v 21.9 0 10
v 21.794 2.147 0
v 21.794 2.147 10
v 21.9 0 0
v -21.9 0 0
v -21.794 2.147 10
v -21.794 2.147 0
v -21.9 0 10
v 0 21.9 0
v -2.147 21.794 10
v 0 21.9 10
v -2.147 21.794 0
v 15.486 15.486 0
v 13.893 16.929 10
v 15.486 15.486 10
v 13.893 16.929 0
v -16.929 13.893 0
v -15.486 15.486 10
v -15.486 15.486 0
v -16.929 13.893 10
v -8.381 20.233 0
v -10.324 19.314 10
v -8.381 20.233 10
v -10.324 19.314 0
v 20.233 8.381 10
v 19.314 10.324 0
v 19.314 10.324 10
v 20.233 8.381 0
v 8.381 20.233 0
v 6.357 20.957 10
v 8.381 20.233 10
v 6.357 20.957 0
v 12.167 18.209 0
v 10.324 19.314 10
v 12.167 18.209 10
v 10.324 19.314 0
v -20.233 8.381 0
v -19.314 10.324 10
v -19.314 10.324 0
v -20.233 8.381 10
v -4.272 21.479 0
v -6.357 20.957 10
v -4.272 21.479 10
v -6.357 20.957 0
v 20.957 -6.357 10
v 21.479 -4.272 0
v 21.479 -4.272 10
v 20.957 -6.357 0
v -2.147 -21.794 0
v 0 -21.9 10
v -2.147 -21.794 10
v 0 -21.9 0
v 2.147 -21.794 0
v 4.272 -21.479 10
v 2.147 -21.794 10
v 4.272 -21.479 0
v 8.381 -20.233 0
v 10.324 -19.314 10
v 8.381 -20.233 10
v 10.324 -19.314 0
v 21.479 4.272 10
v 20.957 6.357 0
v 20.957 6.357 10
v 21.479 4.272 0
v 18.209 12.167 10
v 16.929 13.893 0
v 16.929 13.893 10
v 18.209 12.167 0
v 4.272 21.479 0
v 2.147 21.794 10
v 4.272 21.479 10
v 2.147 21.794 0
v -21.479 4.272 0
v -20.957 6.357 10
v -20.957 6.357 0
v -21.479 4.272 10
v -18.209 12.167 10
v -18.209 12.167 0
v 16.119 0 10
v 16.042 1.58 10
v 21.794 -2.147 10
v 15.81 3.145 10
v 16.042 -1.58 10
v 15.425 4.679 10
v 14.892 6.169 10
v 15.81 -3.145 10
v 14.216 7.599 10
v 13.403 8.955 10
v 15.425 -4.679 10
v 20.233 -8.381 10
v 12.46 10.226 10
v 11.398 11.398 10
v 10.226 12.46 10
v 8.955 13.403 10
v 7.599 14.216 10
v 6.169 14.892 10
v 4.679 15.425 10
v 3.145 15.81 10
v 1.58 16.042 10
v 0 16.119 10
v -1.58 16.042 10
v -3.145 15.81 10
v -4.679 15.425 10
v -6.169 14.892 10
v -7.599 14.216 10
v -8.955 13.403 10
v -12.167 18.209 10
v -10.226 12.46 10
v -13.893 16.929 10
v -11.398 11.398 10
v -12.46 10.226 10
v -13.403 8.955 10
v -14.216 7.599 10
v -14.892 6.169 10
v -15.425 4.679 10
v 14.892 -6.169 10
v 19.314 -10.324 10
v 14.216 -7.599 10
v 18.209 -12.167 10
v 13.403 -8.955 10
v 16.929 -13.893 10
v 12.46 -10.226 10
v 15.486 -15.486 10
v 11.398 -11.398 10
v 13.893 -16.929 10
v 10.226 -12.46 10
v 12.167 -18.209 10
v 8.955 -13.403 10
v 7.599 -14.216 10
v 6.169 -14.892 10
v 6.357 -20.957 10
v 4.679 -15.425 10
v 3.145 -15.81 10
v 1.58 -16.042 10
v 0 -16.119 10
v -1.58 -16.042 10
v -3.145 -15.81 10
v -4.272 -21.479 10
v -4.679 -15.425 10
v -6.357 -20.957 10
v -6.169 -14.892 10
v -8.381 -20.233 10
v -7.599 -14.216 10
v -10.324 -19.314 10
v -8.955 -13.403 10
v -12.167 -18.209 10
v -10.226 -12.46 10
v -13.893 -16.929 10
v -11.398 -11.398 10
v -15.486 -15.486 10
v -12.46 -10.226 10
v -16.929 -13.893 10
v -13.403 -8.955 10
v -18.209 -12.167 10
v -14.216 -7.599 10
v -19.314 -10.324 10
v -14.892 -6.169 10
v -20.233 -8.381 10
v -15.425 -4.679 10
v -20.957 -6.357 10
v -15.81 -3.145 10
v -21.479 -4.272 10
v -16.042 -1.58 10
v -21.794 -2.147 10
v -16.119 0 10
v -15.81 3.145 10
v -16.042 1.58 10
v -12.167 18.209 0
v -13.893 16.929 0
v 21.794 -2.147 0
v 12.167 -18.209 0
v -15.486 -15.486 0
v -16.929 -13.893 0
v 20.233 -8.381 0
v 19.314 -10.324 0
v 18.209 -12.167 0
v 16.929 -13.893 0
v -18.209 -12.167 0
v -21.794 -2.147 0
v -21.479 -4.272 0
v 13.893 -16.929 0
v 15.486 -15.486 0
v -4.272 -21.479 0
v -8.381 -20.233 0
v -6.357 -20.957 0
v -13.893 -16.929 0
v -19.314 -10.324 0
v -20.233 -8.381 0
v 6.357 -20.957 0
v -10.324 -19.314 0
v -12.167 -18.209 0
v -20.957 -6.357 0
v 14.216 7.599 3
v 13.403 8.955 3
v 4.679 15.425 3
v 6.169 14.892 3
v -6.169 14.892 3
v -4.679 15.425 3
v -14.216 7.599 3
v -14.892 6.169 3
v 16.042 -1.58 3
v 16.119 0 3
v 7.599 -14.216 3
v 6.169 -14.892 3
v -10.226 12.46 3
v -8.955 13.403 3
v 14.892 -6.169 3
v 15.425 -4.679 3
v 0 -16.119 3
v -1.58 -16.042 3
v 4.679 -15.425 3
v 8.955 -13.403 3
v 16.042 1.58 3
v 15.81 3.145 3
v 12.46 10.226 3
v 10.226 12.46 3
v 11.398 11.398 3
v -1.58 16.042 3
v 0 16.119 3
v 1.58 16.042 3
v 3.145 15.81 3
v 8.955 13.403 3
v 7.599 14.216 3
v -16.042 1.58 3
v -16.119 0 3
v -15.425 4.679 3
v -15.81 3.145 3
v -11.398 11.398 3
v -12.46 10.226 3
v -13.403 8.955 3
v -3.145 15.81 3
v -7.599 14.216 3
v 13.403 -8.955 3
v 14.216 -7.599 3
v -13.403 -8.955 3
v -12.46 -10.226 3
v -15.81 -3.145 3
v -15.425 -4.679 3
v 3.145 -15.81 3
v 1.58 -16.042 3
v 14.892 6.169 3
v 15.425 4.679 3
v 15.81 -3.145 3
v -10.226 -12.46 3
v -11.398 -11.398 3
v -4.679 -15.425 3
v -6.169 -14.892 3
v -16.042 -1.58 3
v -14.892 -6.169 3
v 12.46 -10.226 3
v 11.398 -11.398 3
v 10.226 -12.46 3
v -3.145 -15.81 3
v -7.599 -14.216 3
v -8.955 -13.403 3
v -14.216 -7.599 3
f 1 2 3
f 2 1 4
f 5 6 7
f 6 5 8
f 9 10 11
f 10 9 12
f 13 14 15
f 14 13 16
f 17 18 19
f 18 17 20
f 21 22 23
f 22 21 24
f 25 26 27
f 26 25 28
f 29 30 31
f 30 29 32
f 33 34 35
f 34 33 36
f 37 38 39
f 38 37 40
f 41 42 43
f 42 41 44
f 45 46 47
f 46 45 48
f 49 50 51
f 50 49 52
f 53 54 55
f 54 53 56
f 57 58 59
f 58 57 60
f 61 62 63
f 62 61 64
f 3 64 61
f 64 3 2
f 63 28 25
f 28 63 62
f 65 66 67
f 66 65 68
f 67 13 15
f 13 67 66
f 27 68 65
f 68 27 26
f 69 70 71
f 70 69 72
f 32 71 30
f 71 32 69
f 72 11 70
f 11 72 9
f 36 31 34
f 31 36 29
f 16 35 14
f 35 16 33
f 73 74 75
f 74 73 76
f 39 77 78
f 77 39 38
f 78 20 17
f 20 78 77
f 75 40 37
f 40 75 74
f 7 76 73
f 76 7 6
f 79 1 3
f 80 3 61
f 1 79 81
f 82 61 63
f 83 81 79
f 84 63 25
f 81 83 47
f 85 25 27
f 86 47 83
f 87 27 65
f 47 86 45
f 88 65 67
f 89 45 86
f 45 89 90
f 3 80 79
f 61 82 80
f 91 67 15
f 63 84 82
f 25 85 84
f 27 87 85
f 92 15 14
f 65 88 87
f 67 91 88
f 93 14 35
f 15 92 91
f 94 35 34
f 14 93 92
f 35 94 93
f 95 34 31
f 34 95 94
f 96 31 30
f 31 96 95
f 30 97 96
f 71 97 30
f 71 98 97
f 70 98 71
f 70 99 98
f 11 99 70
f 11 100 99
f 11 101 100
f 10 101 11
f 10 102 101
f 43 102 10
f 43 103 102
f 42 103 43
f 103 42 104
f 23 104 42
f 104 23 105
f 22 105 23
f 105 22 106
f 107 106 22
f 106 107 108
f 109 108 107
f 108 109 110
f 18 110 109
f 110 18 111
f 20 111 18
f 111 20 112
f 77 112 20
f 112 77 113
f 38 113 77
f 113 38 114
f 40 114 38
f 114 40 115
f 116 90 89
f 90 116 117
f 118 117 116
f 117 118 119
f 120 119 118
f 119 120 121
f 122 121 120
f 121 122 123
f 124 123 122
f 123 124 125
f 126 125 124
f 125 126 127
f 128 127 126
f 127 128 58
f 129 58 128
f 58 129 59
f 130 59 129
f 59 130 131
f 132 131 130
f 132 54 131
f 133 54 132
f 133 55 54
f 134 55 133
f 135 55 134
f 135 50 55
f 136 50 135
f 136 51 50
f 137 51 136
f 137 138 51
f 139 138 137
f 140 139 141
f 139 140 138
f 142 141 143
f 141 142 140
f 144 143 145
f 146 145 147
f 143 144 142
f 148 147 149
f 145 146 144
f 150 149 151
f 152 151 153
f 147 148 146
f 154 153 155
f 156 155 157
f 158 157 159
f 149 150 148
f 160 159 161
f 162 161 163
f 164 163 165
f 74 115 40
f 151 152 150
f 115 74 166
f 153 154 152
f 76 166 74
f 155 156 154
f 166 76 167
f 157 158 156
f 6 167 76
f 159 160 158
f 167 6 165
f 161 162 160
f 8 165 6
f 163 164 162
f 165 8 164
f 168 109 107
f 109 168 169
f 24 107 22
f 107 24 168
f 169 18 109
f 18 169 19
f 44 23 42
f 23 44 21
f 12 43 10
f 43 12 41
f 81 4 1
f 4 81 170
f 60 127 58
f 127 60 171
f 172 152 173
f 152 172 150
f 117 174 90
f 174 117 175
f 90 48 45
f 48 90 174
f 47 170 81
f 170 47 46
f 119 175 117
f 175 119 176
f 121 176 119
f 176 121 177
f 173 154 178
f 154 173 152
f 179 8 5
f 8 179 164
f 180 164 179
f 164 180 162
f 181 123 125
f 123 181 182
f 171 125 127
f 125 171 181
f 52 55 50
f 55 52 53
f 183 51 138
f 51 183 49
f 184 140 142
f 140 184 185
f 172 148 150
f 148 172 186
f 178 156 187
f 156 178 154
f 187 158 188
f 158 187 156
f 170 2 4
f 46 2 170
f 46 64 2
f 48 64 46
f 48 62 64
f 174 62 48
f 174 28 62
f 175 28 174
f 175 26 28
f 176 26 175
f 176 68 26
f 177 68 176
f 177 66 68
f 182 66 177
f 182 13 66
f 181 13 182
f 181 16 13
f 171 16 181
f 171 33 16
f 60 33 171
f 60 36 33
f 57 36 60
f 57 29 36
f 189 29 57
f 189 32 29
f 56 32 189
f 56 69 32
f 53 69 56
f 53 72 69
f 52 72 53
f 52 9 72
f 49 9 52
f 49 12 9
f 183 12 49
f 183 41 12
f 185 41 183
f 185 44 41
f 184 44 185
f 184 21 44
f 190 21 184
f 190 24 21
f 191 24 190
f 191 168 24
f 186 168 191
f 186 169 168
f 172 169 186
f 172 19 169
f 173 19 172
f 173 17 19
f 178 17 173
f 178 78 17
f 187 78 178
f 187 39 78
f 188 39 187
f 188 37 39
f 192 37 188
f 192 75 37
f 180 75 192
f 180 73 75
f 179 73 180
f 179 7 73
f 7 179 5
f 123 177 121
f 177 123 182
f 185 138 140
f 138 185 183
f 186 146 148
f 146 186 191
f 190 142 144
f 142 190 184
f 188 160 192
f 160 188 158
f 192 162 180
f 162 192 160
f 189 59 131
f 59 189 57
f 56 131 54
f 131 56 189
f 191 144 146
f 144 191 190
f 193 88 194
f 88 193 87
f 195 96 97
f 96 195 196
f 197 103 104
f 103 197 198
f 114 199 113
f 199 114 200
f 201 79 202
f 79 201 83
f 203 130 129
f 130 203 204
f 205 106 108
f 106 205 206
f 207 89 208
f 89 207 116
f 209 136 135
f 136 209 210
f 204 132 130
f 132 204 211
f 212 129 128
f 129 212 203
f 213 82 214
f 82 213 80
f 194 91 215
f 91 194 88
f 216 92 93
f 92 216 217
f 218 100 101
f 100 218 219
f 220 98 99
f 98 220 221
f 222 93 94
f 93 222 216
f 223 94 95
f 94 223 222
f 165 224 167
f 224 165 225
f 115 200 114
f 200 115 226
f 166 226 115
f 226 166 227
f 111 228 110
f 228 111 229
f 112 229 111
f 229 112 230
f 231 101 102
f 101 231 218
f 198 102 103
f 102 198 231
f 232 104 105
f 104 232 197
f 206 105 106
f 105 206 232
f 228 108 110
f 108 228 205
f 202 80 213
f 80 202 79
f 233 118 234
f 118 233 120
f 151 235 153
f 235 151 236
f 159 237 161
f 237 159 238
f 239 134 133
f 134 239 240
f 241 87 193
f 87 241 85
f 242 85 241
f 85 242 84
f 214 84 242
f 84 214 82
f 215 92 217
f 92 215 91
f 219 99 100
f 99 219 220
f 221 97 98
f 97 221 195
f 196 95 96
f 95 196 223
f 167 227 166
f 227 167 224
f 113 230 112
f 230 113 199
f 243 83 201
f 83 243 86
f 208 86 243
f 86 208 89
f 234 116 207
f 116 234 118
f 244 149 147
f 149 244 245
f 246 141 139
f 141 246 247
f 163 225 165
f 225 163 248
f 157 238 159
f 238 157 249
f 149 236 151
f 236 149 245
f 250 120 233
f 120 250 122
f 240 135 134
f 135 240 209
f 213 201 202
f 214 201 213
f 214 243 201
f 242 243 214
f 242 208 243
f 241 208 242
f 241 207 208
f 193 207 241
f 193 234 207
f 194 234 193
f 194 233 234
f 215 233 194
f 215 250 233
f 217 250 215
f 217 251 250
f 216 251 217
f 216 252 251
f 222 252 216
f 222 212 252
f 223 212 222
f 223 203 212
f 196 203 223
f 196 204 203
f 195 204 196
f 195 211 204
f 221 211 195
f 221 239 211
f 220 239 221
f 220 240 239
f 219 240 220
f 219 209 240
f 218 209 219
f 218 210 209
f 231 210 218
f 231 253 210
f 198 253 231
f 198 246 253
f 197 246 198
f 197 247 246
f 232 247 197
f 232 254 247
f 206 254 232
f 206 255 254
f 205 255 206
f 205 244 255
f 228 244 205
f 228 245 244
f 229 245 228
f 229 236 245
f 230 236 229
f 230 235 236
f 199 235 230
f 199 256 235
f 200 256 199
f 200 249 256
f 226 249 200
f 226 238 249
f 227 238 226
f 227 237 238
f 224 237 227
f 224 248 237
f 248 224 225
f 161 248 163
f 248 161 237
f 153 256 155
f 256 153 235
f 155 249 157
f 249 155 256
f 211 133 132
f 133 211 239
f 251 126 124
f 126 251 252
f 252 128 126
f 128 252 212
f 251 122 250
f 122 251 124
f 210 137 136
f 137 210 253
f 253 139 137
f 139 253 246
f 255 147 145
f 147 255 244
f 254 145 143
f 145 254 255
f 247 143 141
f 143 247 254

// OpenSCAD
// file: bolts.scad
$radial_error = 0.1;
$fn = 32;

module cylinder_outer(height, radius, fn=$fn) {
	fudge = 1/cos(180/fn);
	cylinder(h=height,r=radius*fudge+$radial_error, $fn=fn);
}

module cylinder_inner(height, radius, fn=$fn) {
	cylinder(h=height,r=radius-$radial_error,$fn=fn);
}

// Make a hole for a bolt/screw combination.
module bolt(diameter=3, depth=8, nut_offset=2, shaft_length=10, inset=10) {
	hole(diameter, depth, inset);
	hull() {
		shaft_width = diameter;
		translate([0, 0, nut_offset]) rotate(360/12, [0, 0, 1]) cylinder_outer(diameter, shaft_width, 6);
		translate([0, shaft_length, nut_offset]) rotate(360/12, [0, 0, 1]) cylinder_outer(diameter, shaft_width, 6);
	}
}

// Make a hole. The diameter is the size of the screw (e.g. 3 for M3). Depth is how far the hole should go for the thread, and inset is how far out there should be a hole for the head to go.
module hole(diameter=3, depth=6, inset=10) {
	cylinder_outer(depth, diameter/2);
	translate([0, 0, depth]) cylinder_outer(inset, diameter, 32);
}

module countersunk_hole(diameter=3, depth=6, inset=10) {
	hole(diameter, depth, inset);
	translate([0, 0, depth-diameter/2]) cylinder(r1=diameter/2+$radial_error, r2=diameter+$radial_error, h=diameter/2);
}

module mounting_hole(diameter=3, depth=6, inset=10, outset=3) {
	difference() {
		cylinder_outer(depth, diameter/2+outset);
		hole(diameter=diameter, depth=depth, inset=inset);
	}
}

rotate(90, [1, 0, 0]) difference() {
	cube([30, 10, 10]);
	translate([5, 5, 0]) bolt(diameter=3, depth=8);
	translate([15, 5, 0]) bolt(diameter=4, depth=8);
	translate([25, 5, 0]) countersunk_hole(diameter=4, depth=8);
}
// main file
use <bolts.scad>;

small_radius = 32/2;

height = 10;
sleve_thickness = 6;

outer_radius = small_radius + sleve_thickness;

module foot() {
	render() difference() {
		cylinder_inner(height, outer_radius, 64);
		translate([0, 0, 3]) cylinder_outer(height, small_radius, 64);
	}
}

foot();
